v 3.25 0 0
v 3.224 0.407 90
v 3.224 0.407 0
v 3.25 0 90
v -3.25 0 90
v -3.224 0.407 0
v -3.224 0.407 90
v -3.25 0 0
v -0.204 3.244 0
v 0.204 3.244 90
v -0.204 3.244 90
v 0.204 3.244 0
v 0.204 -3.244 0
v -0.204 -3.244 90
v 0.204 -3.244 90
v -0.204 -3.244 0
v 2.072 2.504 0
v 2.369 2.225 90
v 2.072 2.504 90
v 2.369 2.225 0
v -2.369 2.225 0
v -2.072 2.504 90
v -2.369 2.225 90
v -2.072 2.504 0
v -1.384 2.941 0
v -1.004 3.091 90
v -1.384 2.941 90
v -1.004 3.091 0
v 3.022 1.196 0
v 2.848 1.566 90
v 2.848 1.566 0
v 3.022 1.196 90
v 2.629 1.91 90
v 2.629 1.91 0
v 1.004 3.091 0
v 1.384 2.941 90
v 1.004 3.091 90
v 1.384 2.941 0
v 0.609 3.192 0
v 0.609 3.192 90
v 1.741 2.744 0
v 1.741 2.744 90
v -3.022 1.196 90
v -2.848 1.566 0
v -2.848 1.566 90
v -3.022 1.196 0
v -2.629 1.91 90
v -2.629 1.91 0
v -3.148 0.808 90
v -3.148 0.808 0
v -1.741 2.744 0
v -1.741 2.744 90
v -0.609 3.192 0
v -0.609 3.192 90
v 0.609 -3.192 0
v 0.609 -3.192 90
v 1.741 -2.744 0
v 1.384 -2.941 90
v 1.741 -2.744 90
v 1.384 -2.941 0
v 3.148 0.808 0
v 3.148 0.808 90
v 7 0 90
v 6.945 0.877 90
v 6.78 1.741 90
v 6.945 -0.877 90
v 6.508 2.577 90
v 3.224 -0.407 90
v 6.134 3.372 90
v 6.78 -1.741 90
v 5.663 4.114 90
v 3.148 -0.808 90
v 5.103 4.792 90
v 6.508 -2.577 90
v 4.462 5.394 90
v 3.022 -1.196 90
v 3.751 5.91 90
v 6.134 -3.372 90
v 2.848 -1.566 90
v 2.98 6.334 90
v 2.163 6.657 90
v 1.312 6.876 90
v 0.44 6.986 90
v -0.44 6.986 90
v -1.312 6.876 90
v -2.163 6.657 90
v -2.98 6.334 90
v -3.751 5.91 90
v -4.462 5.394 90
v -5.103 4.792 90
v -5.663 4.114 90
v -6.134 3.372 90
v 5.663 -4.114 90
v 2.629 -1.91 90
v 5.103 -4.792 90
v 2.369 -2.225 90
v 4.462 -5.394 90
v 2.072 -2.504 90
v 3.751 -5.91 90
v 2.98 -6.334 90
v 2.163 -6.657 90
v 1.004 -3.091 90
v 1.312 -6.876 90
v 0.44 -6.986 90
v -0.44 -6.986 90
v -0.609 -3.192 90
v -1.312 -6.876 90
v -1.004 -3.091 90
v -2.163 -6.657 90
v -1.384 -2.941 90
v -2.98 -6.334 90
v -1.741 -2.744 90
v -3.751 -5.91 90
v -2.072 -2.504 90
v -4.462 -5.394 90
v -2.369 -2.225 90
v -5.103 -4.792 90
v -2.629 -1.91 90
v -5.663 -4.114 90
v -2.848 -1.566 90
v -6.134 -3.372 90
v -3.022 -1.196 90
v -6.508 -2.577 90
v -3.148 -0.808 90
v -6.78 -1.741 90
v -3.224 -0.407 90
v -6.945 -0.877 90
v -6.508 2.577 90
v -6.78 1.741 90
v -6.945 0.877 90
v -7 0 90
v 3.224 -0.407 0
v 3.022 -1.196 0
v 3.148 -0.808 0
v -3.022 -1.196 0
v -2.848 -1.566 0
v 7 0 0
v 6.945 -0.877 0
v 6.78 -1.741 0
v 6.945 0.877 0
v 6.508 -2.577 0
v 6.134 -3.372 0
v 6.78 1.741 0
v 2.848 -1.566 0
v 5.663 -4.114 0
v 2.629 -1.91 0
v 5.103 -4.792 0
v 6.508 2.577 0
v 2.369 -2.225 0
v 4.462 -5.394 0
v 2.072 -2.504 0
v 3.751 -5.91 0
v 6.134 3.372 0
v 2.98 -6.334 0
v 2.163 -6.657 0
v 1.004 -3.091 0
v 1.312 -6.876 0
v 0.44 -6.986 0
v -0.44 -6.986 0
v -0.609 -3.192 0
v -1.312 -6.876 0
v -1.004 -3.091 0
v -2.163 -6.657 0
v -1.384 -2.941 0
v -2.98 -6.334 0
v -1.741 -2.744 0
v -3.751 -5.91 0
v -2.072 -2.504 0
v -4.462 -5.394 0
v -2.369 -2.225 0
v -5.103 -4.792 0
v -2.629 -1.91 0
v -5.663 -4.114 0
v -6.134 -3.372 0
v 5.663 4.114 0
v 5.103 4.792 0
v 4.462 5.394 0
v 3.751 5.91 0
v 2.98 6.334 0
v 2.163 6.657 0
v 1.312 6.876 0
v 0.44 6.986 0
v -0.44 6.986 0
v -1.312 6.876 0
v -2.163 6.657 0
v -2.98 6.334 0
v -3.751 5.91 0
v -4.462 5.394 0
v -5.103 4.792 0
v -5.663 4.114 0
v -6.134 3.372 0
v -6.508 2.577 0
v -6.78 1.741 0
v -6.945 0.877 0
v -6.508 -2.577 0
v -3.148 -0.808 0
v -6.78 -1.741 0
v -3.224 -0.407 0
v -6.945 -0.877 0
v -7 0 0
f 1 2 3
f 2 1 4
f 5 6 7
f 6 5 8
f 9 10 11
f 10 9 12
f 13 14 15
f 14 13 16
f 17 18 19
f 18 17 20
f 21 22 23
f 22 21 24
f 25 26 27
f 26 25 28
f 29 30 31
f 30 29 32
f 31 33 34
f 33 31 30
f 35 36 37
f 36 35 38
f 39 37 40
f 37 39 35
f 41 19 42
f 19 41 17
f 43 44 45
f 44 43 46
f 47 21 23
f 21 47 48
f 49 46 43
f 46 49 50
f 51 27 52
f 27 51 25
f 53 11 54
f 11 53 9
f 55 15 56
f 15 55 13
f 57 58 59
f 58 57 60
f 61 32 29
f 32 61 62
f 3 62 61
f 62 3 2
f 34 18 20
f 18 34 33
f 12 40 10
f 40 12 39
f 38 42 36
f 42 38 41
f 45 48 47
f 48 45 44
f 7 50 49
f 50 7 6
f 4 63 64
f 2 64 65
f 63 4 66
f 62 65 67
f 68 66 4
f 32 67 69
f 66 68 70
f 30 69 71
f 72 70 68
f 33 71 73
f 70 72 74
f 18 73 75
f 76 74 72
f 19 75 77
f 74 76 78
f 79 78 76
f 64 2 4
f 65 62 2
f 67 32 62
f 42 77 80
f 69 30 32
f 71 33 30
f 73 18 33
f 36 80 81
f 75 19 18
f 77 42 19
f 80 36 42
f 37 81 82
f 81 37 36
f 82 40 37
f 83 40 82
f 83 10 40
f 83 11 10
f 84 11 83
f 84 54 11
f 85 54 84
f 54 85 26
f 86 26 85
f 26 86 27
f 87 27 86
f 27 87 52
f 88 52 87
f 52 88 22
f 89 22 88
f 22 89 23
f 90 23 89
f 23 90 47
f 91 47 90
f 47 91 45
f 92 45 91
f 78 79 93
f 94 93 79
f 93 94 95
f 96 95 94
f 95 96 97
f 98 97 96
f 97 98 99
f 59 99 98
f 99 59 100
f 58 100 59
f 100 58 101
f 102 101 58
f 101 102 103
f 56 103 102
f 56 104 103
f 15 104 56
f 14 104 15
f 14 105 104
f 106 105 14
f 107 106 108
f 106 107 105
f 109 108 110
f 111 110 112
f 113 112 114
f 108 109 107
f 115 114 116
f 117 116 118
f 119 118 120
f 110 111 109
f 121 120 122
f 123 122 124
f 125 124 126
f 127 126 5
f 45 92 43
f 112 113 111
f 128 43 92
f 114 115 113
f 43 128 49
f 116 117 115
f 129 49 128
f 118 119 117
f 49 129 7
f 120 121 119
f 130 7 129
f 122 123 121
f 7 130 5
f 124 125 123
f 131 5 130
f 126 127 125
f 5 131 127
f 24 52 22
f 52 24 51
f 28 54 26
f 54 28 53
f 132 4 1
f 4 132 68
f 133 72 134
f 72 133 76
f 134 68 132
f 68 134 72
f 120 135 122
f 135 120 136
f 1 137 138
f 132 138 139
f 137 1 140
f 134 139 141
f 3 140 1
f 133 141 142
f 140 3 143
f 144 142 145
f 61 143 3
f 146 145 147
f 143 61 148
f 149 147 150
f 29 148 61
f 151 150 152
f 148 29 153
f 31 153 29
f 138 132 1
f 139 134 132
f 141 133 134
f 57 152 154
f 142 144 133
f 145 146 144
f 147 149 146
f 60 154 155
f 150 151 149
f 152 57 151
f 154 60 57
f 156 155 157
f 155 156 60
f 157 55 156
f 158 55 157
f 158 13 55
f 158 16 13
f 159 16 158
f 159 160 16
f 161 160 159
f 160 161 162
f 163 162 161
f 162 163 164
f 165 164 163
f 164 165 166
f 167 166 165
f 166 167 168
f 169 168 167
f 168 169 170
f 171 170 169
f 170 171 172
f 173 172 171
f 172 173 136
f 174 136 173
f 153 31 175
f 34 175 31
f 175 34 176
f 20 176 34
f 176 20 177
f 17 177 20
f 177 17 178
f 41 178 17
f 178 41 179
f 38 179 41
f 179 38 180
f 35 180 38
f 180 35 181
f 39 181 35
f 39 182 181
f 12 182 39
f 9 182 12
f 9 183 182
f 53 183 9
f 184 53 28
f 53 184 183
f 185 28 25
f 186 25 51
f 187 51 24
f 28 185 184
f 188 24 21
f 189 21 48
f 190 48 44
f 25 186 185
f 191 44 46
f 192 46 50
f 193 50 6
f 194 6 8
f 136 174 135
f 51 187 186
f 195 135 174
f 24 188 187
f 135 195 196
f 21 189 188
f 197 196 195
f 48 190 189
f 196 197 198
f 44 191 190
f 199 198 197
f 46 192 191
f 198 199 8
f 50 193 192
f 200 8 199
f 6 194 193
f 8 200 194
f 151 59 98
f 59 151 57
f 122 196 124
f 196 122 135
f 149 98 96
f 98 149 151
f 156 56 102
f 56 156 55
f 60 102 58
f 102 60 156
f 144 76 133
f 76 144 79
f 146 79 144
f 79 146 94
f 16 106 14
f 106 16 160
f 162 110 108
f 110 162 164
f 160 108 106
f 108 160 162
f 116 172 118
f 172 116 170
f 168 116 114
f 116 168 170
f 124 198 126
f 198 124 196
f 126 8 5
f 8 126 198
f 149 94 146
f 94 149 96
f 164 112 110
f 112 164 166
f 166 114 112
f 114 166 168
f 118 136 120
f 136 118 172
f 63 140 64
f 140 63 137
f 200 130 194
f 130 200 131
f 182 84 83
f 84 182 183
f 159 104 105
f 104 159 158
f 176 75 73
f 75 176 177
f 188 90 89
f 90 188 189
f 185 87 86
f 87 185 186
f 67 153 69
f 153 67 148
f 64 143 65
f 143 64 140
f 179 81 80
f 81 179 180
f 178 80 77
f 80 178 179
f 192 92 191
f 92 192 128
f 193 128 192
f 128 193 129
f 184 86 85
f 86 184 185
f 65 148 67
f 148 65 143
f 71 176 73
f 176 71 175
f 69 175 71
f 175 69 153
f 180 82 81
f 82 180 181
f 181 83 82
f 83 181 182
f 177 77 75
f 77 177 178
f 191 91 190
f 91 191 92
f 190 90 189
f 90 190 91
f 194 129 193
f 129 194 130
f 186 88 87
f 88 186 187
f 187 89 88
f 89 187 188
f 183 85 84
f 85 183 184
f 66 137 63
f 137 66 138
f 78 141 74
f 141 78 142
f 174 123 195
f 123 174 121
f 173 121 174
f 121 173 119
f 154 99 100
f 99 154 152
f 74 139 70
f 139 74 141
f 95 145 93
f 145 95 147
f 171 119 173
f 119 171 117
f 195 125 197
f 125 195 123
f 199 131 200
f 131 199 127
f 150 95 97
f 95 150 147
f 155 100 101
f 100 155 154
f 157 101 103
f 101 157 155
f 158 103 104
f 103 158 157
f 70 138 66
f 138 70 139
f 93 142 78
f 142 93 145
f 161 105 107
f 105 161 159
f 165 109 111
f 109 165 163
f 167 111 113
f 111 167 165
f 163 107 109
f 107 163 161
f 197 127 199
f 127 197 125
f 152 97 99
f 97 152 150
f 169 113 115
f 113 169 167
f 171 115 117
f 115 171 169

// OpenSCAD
$fn = 50;


difference() {
	union() {
		cylinder(h = 90, r = 7.0000000000);
	}
	union() {
		translate(v = [0.0000000000, 0.0000000000, -100.0000000000]) {
			cylinder(h = 200, r = 3.2500000000);
		}
		translate(v = [0.0000000000, 0.0000000000, -100.0000000000]) {
			cylinder(h = 200, r = 3.2500000000);
		}
		translate(v = [0.0000000000, 0.0000000000, -100.0000000000]) {
			cylinder(h = 200, r = 3.2500000000);
		}
		translate(v = [0.0000000000, 0.0000000000, -100.0000000000]) {
			cylinder(h = 200, r = 3.2500000000);
		}
	}
}
